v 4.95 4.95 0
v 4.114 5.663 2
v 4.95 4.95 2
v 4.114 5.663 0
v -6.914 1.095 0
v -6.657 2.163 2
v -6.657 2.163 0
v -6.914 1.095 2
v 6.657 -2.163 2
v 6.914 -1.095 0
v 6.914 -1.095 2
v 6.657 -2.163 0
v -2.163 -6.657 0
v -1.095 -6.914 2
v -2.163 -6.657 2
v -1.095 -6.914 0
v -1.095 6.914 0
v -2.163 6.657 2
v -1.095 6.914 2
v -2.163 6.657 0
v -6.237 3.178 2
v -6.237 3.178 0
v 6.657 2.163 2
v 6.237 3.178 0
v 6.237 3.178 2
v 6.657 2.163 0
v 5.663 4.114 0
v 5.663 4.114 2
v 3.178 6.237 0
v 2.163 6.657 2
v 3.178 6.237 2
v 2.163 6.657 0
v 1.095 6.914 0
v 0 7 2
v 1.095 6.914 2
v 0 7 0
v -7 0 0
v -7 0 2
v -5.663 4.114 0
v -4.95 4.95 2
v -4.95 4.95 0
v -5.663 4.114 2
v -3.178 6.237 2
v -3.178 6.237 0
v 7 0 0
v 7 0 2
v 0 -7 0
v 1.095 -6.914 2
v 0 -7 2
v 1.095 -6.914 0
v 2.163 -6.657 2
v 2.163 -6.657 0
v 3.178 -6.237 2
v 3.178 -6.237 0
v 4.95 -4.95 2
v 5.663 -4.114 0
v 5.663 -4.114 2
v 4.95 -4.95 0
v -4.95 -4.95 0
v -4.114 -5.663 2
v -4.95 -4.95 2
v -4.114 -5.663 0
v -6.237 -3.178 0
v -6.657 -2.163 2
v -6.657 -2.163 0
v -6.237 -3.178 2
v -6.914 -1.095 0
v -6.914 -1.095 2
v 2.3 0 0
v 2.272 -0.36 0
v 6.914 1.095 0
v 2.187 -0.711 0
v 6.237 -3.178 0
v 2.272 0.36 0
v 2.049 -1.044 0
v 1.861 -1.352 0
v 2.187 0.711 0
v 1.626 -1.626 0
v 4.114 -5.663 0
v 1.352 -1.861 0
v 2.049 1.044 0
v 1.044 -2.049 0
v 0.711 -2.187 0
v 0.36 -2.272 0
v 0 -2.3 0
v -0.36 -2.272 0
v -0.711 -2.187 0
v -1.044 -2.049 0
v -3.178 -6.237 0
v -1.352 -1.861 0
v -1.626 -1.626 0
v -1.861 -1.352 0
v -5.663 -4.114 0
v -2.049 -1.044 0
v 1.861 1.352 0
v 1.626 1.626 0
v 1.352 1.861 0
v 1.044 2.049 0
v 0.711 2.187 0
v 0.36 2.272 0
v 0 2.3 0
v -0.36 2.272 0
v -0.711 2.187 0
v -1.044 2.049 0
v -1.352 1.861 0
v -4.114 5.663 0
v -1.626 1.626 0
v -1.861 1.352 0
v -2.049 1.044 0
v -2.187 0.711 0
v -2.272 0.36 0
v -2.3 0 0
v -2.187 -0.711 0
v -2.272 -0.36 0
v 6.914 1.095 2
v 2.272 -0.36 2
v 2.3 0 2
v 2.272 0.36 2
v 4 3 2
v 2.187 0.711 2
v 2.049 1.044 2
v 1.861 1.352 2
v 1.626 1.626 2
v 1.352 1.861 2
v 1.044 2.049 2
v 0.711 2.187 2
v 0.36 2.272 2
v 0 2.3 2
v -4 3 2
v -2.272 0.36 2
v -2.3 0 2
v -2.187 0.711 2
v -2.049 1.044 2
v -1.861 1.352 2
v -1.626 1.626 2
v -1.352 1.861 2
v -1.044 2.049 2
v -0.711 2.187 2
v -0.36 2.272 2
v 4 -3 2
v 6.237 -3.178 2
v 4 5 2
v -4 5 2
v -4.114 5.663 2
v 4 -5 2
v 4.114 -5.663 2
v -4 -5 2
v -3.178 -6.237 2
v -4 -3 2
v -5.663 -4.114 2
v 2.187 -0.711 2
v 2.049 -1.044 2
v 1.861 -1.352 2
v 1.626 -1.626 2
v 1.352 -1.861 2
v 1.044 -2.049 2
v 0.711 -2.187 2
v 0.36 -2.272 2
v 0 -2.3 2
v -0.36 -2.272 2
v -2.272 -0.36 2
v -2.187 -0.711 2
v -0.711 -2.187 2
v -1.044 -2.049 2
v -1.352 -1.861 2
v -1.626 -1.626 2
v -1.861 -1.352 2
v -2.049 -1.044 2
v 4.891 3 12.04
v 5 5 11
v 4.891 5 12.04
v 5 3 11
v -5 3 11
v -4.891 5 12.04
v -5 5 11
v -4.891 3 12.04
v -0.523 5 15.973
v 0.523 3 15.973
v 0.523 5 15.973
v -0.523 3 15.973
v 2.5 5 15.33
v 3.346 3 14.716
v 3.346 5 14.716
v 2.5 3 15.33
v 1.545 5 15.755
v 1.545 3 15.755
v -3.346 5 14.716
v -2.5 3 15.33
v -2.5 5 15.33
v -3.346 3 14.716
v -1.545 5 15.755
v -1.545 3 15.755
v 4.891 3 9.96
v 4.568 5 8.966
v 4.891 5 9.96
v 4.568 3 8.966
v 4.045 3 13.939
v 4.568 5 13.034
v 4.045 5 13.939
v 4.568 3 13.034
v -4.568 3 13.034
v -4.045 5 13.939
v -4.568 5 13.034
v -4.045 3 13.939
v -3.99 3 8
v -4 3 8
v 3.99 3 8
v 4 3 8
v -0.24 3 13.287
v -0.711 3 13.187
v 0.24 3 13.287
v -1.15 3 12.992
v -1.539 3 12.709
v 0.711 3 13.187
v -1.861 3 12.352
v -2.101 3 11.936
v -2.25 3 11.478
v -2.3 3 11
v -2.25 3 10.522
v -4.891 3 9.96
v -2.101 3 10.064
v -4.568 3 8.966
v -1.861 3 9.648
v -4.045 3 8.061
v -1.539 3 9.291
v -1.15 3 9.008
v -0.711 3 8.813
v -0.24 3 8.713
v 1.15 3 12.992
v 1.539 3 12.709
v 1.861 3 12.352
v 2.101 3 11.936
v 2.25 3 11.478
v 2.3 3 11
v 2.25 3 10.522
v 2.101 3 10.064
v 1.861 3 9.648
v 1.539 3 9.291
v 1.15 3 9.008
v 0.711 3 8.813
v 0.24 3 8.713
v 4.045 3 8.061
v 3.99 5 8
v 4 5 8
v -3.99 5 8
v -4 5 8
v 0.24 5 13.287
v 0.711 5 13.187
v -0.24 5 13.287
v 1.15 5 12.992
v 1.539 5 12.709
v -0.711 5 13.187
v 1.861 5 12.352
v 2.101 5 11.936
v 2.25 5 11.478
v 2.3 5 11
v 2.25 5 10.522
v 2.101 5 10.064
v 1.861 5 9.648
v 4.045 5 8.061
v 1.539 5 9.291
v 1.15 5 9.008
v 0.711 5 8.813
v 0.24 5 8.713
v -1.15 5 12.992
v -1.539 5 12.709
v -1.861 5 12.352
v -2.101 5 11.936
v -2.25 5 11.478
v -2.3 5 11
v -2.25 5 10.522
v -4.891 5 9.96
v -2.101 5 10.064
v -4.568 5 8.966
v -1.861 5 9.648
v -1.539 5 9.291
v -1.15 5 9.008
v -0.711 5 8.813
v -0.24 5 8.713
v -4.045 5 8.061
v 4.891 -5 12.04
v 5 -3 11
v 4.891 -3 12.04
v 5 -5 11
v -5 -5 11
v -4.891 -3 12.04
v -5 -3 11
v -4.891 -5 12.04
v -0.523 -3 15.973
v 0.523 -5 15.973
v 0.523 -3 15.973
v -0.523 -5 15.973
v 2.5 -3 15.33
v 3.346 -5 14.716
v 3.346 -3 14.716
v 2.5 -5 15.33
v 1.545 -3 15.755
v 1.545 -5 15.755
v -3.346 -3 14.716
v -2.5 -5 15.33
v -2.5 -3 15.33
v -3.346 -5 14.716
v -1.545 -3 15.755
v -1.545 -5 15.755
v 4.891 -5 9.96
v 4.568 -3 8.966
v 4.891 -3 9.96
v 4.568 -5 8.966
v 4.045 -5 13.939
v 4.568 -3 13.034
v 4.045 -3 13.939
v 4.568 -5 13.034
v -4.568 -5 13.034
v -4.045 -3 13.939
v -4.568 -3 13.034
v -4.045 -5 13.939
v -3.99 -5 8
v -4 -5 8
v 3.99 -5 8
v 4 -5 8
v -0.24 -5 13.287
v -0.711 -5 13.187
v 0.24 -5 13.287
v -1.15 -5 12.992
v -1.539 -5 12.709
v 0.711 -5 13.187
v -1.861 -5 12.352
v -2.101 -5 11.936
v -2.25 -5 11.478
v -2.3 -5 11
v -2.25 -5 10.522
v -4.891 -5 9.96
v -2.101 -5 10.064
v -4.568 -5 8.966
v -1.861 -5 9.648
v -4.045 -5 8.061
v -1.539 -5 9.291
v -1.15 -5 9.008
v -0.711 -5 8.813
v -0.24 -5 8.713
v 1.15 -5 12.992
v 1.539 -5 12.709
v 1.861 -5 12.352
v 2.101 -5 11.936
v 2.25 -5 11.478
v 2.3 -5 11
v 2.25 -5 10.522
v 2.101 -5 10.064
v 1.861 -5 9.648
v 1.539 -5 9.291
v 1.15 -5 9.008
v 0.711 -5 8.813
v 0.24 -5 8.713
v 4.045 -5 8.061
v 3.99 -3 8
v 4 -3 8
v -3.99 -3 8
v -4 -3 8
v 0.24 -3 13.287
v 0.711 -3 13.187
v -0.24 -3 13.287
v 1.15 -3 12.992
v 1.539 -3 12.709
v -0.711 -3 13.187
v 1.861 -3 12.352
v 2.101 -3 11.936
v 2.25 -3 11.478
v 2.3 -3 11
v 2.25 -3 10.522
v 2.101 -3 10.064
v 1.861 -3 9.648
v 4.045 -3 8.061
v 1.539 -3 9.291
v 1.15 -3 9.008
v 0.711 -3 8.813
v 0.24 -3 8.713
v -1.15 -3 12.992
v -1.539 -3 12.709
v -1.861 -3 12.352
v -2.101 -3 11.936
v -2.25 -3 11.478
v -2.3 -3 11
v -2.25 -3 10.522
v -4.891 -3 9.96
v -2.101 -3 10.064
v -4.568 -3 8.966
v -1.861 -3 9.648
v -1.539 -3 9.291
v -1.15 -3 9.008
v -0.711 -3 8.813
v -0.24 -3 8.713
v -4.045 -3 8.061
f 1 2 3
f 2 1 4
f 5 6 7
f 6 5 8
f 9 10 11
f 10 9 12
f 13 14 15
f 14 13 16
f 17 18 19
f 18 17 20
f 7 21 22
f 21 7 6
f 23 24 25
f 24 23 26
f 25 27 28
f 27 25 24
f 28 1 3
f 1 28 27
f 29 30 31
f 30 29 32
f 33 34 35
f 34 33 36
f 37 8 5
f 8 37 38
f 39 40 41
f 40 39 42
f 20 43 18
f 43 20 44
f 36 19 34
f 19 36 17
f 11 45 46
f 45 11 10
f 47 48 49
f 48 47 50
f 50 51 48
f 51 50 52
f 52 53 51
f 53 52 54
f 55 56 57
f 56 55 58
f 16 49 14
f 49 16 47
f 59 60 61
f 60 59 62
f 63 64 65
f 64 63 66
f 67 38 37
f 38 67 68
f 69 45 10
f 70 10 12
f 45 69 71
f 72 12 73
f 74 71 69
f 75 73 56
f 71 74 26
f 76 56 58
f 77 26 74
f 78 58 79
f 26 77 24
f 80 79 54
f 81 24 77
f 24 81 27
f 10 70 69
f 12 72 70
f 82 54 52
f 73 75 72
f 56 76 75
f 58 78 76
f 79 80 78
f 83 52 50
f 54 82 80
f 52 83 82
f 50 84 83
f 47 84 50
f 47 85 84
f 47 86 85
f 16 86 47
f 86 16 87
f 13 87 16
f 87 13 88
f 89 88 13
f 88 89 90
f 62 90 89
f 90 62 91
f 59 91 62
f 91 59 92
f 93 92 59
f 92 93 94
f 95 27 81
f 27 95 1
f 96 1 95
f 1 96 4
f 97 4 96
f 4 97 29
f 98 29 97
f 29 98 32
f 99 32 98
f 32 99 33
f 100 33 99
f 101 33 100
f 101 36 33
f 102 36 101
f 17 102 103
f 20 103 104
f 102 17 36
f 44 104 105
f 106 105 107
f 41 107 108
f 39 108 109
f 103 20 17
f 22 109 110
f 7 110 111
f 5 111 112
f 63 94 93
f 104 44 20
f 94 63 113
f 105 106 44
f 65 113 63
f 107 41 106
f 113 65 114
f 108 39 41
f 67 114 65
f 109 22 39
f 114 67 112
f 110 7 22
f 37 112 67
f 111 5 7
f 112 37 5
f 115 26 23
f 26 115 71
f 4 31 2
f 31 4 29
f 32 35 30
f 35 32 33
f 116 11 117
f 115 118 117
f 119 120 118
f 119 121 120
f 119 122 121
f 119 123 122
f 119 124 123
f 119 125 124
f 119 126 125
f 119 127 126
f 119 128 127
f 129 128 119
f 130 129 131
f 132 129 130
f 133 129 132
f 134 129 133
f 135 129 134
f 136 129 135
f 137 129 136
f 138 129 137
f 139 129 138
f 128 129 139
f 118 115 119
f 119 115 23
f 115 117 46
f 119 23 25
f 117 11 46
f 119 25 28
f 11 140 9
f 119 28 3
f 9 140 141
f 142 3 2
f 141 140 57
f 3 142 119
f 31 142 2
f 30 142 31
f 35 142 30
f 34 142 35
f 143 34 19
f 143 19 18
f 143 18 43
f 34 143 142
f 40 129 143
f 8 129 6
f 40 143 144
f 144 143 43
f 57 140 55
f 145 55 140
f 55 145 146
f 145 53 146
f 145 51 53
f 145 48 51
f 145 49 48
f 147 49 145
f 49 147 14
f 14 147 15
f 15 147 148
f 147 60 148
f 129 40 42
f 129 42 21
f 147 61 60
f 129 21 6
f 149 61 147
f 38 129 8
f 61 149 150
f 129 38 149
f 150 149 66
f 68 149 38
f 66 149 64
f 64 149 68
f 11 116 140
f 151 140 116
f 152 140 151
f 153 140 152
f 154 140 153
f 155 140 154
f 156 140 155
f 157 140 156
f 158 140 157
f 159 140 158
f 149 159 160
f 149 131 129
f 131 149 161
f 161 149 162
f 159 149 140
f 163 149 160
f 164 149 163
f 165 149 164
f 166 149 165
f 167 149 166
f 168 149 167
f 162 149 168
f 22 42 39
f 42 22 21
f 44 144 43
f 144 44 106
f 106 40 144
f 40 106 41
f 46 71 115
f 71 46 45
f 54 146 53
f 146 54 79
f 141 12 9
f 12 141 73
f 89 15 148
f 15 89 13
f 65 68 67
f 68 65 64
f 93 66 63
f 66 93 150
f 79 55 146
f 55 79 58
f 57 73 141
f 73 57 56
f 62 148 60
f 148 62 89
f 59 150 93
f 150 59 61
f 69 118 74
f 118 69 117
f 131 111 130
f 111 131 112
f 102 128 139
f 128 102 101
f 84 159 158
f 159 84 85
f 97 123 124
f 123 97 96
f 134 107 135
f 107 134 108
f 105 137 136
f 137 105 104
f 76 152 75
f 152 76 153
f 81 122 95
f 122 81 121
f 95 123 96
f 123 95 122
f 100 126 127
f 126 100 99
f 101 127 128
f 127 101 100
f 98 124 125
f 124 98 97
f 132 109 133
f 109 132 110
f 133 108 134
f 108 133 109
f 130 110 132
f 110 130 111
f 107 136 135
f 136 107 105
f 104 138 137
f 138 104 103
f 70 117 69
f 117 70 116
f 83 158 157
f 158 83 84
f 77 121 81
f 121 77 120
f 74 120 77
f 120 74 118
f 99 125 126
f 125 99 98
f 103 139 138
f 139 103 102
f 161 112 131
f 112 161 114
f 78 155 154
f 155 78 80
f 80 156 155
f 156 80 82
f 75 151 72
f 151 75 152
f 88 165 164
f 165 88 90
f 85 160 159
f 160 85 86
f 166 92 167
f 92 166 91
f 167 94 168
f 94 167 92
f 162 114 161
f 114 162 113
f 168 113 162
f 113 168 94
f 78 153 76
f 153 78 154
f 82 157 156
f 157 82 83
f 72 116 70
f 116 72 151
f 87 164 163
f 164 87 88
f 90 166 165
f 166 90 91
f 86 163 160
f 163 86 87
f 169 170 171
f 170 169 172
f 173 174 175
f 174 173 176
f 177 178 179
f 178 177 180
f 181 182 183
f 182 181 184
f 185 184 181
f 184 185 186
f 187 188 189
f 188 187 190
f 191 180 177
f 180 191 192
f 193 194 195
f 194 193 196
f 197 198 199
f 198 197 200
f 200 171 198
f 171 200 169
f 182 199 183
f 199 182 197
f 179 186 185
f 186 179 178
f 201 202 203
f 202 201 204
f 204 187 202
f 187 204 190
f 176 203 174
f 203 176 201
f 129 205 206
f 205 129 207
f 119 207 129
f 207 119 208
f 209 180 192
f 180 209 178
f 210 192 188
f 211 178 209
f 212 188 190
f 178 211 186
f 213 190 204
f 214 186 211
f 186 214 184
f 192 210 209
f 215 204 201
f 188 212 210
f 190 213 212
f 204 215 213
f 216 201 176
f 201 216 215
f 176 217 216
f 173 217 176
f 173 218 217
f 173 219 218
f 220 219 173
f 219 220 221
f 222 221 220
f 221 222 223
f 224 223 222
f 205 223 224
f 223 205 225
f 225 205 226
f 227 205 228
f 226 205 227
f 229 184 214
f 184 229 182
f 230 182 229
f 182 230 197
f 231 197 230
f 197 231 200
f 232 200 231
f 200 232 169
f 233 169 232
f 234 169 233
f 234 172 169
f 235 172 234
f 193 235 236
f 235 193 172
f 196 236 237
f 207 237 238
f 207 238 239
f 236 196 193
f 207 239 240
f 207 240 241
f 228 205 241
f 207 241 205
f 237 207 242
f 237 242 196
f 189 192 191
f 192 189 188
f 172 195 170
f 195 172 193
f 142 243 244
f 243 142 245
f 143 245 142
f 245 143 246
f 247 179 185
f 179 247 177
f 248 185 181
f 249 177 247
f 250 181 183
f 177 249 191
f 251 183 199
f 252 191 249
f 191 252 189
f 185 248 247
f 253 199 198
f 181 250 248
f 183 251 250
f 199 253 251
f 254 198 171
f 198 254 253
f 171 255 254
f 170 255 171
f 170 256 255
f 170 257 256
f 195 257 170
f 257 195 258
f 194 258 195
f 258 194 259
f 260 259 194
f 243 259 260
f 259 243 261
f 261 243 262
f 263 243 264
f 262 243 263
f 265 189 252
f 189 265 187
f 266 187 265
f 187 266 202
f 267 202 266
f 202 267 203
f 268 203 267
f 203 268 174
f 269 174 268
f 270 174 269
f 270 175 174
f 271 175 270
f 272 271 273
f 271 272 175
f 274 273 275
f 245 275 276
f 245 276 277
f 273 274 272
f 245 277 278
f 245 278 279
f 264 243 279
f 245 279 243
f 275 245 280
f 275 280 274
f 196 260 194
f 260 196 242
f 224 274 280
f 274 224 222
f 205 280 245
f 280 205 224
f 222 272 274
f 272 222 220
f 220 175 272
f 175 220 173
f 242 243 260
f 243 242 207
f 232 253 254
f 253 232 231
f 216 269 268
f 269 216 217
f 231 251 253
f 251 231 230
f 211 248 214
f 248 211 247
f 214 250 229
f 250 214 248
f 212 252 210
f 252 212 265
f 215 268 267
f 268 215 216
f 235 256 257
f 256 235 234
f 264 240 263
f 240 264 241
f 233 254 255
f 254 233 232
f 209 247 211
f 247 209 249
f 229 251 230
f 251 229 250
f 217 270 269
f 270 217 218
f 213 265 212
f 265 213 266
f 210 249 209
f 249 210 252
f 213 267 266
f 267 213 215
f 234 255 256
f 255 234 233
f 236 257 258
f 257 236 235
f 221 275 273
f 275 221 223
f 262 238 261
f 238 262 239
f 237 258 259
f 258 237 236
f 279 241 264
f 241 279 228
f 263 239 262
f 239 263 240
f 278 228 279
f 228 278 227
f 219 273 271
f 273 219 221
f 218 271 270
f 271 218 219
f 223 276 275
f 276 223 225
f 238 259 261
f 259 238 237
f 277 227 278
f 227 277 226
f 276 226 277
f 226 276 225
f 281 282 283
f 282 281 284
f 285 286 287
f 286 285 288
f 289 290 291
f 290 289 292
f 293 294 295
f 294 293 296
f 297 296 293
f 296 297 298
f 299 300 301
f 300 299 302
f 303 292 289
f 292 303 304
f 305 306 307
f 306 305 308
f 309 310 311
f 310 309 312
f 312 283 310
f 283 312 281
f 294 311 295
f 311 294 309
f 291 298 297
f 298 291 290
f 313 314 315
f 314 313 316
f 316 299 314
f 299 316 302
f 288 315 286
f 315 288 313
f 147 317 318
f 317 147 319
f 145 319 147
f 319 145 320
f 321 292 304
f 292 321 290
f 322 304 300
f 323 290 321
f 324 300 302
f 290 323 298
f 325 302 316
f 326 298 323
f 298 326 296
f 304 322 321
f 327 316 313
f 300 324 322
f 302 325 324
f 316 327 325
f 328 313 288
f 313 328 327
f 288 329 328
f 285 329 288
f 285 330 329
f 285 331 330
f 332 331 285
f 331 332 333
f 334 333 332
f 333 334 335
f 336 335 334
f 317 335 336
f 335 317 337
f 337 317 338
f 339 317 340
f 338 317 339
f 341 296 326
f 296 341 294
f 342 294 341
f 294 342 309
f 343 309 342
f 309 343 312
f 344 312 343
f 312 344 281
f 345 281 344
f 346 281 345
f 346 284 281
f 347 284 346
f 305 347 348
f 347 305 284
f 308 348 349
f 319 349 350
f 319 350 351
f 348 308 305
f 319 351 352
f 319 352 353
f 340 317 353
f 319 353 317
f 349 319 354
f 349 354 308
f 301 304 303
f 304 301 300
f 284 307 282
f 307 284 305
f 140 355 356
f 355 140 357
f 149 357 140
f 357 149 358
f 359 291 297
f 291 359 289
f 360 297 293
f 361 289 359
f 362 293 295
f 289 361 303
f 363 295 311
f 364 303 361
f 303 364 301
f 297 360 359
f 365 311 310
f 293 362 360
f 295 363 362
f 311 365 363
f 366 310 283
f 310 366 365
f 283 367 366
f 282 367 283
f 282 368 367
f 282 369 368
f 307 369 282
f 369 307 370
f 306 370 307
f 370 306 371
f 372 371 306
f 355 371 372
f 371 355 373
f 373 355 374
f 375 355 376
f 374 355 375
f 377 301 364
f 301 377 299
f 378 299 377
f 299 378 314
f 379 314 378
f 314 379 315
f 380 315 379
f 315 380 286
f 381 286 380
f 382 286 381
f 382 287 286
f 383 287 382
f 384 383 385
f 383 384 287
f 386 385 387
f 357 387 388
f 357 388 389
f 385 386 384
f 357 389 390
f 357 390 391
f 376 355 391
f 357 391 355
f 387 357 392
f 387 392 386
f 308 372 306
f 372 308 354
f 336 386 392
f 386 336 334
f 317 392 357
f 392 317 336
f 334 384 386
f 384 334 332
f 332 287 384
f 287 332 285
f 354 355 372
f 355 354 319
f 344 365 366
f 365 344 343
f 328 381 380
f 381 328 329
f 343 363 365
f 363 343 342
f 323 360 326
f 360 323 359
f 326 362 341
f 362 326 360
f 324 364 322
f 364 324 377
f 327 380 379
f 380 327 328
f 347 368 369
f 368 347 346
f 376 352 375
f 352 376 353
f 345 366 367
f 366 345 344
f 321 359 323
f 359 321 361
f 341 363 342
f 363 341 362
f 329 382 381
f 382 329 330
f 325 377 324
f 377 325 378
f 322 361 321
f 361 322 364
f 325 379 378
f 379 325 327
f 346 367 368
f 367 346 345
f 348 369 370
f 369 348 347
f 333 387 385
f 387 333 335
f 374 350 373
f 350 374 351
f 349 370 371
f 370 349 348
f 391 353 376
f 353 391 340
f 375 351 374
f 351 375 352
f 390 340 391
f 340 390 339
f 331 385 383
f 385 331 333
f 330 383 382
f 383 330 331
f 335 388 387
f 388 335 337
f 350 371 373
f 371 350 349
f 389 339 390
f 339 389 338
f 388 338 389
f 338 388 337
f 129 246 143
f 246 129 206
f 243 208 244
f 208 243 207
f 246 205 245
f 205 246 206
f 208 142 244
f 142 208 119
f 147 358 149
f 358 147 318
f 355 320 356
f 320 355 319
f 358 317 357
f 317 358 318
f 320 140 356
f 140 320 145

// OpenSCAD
translate([0,0,0])
rotate([0,0,0])
difference() {
	cylinder(2,7,7, $fn=40);
	cylinder(3,2.3,2.3, $fn=40);
}
translate([0,5,11])
rotate([90,0,0])
difference() {
	cylinder(2,5,5, $fn=30);
	cylinder(3,2.3,2.3, $fn=30);
}
translate([-4,3,0])
	scale([1,0.25,1])
		cube(8);

translate([0,-3,11])
rotate([90,0,0])
difference() {
	cylinder(2,5,5, $fn=30);
	cylinder(3,2.3,2.3, $fn=30);
}

translate([-4,-5,0])
scale([1,0.25,1])
cube(8);
